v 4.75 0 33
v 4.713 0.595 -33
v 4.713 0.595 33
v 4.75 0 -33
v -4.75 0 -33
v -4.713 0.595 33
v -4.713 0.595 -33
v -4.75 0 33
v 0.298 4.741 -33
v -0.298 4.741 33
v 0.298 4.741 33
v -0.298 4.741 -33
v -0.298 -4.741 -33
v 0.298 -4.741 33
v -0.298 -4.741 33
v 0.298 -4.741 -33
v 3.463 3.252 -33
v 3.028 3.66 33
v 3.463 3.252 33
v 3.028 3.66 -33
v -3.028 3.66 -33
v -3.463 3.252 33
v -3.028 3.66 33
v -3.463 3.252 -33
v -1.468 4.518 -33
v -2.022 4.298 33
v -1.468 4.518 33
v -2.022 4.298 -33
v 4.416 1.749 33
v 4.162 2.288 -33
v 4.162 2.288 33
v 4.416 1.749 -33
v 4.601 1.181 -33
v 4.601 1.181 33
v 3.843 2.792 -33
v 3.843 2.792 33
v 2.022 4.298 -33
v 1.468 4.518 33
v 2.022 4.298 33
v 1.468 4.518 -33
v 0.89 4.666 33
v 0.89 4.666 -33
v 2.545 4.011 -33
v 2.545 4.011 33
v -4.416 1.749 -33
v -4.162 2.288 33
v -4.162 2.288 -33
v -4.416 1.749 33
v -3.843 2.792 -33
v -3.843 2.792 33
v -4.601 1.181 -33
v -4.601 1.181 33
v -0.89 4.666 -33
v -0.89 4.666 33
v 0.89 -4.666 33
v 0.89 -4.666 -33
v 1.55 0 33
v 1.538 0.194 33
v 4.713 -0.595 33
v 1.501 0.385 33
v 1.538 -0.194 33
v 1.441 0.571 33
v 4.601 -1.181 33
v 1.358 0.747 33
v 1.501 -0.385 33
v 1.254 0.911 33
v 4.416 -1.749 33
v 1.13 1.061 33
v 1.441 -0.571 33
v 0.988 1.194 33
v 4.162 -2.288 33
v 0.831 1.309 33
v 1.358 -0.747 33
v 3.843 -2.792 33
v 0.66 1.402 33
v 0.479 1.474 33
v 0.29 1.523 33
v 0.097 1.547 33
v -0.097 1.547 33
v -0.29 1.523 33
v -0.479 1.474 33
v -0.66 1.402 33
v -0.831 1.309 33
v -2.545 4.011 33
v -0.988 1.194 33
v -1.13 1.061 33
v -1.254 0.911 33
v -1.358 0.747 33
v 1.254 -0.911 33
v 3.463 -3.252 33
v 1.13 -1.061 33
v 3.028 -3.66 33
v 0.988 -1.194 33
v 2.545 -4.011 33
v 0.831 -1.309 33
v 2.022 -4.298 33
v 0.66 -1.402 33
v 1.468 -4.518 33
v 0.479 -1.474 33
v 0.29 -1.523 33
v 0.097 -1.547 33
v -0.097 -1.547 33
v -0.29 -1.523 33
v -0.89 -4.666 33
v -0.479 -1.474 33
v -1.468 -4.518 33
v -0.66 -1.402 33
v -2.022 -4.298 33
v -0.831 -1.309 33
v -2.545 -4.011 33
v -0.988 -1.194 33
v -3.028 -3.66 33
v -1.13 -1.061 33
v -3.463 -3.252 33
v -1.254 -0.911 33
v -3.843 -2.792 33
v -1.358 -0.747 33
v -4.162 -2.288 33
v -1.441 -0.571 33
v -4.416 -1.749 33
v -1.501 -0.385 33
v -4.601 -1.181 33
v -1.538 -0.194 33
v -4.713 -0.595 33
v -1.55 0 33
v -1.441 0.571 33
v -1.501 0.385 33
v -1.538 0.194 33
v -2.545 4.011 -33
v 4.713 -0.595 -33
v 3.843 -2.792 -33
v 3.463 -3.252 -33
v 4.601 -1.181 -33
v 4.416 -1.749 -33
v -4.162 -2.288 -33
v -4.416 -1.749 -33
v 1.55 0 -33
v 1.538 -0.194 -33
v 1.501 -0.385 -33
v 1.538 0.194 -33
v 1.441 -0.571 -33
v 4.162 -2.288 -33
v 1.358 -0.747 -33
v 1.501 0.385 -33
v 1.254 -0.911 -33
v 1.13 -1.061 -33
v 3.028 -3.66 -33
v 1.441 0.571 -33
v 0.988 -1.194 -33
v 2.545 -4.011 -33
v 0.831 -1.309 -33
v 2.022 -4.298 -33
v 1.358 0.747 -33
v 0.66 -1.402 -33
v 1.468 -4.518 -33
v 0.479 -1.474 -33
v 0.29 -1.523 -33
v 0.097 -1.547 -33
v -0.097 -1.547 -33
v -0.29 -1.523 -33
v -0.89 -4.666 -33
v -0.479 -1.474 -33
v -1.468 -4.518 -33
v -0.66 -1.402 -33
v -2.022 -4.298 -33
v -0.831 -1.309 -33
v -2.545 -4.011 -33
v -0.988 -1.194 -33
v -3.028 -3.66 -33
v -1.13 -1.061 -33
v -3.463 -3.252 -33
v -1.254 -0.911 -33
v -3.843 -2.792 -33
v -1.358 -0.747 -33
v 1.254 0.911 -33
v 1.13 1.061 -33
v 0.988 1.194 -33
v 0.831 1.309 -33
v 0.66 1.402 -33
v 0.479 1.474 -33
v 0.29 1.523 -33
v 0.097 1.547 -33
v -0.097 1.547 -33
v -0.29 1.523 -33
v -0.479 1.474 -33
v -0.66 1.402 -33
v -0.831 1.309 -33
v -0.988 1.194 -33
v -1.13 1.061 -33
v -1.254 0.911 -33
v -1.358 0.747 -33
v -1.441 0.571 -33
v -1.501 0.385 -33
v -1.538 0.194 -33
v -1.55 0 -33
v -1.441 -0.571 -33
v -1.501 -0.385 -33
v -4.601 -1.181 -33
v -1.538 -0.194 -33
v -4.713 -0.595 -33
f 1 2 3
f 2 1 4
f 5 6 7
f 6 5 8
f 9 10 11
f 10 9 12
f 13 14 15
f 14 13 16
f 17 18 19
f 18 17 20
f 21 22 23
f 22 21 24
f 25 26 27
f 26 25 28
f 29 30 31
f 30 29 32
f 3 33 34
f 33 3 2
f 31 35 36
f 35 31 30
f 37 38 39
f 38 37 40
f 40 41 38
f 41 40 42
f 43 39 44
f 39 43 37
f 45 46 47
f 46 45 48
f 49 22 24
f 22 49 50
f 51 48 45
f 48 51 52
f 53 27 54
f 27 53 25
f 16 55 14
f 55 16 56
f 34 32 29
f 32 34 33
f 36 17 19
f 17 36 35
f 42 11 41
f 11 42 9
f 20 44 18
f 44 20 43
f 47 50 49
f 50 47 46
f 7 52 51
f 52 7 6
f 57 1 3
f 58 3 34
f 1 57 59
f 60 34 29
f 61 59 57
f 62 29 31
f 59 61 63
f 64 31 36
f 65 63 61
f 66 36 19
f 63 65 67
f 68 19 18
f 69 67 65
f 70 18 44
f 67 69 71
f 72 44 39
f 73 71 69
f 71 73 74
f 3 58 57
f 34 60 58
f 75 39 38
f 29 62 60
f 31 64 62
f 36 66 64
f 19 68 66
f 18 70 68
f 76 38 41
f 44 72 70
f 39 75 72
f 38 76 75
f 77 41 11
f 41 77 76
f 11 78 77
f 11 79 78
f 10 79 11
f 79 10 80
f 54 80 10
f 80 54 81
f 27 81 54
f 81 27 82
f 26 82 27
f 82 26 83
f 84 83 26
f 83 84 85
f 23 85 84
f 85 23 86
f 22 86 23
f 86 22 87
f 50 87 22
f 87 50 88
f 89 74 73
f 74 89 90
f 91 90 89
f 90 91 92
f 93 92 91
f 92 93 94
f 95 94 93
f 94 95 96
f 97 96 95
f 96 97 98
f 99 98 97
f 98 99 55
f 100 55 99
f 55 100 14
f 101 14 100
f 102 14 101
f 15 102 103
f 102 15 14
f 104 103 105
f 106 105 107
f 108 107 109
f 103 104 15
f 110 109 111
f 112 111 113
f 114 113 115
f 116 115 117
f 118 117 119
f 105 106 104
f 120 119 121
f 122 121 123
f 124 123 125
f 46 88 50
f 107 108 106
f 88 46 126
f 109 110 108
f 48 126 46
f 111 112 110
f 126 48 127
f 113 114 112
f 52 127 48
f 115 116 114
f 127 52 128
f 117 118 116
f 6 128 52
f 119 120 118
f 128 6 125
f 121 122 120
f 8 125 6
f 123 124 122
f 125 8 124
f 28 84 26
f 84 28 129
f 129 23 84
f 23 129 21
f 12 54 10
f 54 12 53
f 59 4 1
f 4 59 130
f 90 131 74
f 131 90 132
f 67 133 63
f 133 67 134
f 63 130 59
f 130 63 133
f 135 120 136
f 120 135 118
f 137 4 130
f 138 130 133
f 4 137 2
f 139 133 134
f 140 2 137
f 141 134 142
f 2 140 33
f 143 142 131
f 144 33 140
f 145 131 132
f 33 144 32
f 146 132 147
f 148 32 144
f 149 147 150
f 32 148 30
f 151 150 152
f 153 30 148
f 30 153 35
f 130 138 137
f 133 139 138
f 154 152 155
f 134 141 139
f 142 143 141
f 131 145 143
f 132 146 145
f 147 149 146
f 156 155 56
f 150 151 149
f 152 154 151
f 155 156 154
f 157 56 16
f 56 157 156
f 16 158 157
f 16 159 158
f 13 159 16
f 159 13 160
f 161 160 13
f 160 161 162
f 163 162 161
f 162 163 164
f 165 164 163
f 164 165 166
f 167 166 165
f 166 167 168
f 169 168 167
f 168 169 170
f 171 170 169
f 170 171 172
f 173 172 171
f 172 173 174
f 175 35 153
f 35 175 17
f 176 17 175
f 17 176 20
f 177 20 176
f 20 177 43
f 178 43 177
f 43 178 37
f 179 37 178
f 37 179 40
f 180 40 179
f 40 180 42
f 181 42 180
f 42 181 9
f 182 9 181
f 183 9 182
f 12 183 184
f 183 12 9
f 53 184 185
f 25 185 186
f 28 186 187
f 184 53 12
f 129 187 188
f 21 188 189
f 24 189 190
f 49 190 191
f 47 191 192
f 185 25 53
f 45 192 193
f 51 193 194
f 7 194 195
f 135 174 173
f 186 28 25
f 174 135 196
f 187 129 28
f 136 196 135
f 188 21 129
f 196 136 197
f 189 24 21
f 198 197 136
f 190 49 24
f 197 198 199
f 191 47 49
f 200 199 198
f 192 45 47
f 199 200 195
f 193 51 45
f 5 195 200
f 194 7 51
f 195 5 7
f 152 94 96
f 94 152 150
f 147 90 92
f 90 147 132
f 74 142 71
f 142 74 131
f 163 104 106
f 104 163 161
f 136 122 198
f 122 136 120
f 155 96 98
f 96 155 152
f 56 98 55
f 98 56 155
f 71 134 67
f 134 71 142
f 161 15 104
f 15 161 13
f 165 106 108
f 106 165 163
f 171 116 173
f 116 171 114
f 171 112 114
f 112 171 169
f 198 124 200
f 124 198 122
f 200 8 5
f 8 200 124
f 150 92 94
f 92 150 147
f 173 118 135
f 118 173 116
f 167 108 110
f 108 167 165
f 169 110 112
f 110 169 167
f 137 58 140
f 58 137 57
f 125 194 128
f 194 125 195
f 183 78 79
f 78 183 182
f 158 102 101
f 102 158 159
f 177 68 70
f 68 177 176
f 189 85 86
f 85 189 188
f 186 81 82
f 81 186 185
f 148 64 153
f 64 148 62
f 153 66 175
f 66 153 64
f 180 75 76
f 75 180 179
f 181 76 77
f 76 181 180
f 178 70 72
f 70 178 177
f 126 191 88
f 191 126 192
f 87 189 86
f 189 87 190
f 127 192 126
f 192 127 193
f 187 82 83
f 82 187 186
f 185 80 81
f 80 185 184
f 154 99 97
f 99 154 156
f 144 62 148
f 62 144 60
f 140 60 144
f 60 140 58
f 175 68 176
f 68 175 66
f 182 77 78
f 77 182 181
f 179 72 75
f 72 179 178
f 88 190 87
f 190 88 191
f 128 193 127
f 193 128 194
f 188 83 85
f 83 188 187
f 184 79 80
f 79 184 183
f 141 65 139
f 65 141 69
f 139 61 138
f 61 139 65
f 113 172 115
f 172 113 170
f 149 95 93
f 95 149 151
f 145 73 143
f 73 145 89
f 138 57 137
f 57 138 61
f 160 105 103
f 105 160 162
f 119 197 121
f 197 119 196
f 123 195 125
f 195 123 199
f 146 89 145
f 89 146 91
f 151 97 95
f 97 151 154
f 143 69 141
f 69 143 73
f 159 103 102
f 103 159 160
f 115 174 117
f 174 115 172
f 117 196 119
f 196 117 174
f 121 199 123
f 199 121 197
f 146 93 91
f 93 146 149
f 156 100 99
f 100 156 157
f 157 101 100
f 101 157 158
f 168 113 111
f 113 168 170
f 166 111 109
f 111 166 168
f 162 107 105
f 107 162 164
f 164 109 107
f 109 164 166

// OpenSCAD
$fn = 50;


difference() {
	union() {
		translate(v = [0, 0, -33.0000000000]) {
			cylinder(h = 66, r = 4.7500000000);
		}
	}
	union() {
		translate(v = [0, 0, -100.0000000000]) {
			cylinder(h = 200, r = 1.5500000000);
		}
	}
}
